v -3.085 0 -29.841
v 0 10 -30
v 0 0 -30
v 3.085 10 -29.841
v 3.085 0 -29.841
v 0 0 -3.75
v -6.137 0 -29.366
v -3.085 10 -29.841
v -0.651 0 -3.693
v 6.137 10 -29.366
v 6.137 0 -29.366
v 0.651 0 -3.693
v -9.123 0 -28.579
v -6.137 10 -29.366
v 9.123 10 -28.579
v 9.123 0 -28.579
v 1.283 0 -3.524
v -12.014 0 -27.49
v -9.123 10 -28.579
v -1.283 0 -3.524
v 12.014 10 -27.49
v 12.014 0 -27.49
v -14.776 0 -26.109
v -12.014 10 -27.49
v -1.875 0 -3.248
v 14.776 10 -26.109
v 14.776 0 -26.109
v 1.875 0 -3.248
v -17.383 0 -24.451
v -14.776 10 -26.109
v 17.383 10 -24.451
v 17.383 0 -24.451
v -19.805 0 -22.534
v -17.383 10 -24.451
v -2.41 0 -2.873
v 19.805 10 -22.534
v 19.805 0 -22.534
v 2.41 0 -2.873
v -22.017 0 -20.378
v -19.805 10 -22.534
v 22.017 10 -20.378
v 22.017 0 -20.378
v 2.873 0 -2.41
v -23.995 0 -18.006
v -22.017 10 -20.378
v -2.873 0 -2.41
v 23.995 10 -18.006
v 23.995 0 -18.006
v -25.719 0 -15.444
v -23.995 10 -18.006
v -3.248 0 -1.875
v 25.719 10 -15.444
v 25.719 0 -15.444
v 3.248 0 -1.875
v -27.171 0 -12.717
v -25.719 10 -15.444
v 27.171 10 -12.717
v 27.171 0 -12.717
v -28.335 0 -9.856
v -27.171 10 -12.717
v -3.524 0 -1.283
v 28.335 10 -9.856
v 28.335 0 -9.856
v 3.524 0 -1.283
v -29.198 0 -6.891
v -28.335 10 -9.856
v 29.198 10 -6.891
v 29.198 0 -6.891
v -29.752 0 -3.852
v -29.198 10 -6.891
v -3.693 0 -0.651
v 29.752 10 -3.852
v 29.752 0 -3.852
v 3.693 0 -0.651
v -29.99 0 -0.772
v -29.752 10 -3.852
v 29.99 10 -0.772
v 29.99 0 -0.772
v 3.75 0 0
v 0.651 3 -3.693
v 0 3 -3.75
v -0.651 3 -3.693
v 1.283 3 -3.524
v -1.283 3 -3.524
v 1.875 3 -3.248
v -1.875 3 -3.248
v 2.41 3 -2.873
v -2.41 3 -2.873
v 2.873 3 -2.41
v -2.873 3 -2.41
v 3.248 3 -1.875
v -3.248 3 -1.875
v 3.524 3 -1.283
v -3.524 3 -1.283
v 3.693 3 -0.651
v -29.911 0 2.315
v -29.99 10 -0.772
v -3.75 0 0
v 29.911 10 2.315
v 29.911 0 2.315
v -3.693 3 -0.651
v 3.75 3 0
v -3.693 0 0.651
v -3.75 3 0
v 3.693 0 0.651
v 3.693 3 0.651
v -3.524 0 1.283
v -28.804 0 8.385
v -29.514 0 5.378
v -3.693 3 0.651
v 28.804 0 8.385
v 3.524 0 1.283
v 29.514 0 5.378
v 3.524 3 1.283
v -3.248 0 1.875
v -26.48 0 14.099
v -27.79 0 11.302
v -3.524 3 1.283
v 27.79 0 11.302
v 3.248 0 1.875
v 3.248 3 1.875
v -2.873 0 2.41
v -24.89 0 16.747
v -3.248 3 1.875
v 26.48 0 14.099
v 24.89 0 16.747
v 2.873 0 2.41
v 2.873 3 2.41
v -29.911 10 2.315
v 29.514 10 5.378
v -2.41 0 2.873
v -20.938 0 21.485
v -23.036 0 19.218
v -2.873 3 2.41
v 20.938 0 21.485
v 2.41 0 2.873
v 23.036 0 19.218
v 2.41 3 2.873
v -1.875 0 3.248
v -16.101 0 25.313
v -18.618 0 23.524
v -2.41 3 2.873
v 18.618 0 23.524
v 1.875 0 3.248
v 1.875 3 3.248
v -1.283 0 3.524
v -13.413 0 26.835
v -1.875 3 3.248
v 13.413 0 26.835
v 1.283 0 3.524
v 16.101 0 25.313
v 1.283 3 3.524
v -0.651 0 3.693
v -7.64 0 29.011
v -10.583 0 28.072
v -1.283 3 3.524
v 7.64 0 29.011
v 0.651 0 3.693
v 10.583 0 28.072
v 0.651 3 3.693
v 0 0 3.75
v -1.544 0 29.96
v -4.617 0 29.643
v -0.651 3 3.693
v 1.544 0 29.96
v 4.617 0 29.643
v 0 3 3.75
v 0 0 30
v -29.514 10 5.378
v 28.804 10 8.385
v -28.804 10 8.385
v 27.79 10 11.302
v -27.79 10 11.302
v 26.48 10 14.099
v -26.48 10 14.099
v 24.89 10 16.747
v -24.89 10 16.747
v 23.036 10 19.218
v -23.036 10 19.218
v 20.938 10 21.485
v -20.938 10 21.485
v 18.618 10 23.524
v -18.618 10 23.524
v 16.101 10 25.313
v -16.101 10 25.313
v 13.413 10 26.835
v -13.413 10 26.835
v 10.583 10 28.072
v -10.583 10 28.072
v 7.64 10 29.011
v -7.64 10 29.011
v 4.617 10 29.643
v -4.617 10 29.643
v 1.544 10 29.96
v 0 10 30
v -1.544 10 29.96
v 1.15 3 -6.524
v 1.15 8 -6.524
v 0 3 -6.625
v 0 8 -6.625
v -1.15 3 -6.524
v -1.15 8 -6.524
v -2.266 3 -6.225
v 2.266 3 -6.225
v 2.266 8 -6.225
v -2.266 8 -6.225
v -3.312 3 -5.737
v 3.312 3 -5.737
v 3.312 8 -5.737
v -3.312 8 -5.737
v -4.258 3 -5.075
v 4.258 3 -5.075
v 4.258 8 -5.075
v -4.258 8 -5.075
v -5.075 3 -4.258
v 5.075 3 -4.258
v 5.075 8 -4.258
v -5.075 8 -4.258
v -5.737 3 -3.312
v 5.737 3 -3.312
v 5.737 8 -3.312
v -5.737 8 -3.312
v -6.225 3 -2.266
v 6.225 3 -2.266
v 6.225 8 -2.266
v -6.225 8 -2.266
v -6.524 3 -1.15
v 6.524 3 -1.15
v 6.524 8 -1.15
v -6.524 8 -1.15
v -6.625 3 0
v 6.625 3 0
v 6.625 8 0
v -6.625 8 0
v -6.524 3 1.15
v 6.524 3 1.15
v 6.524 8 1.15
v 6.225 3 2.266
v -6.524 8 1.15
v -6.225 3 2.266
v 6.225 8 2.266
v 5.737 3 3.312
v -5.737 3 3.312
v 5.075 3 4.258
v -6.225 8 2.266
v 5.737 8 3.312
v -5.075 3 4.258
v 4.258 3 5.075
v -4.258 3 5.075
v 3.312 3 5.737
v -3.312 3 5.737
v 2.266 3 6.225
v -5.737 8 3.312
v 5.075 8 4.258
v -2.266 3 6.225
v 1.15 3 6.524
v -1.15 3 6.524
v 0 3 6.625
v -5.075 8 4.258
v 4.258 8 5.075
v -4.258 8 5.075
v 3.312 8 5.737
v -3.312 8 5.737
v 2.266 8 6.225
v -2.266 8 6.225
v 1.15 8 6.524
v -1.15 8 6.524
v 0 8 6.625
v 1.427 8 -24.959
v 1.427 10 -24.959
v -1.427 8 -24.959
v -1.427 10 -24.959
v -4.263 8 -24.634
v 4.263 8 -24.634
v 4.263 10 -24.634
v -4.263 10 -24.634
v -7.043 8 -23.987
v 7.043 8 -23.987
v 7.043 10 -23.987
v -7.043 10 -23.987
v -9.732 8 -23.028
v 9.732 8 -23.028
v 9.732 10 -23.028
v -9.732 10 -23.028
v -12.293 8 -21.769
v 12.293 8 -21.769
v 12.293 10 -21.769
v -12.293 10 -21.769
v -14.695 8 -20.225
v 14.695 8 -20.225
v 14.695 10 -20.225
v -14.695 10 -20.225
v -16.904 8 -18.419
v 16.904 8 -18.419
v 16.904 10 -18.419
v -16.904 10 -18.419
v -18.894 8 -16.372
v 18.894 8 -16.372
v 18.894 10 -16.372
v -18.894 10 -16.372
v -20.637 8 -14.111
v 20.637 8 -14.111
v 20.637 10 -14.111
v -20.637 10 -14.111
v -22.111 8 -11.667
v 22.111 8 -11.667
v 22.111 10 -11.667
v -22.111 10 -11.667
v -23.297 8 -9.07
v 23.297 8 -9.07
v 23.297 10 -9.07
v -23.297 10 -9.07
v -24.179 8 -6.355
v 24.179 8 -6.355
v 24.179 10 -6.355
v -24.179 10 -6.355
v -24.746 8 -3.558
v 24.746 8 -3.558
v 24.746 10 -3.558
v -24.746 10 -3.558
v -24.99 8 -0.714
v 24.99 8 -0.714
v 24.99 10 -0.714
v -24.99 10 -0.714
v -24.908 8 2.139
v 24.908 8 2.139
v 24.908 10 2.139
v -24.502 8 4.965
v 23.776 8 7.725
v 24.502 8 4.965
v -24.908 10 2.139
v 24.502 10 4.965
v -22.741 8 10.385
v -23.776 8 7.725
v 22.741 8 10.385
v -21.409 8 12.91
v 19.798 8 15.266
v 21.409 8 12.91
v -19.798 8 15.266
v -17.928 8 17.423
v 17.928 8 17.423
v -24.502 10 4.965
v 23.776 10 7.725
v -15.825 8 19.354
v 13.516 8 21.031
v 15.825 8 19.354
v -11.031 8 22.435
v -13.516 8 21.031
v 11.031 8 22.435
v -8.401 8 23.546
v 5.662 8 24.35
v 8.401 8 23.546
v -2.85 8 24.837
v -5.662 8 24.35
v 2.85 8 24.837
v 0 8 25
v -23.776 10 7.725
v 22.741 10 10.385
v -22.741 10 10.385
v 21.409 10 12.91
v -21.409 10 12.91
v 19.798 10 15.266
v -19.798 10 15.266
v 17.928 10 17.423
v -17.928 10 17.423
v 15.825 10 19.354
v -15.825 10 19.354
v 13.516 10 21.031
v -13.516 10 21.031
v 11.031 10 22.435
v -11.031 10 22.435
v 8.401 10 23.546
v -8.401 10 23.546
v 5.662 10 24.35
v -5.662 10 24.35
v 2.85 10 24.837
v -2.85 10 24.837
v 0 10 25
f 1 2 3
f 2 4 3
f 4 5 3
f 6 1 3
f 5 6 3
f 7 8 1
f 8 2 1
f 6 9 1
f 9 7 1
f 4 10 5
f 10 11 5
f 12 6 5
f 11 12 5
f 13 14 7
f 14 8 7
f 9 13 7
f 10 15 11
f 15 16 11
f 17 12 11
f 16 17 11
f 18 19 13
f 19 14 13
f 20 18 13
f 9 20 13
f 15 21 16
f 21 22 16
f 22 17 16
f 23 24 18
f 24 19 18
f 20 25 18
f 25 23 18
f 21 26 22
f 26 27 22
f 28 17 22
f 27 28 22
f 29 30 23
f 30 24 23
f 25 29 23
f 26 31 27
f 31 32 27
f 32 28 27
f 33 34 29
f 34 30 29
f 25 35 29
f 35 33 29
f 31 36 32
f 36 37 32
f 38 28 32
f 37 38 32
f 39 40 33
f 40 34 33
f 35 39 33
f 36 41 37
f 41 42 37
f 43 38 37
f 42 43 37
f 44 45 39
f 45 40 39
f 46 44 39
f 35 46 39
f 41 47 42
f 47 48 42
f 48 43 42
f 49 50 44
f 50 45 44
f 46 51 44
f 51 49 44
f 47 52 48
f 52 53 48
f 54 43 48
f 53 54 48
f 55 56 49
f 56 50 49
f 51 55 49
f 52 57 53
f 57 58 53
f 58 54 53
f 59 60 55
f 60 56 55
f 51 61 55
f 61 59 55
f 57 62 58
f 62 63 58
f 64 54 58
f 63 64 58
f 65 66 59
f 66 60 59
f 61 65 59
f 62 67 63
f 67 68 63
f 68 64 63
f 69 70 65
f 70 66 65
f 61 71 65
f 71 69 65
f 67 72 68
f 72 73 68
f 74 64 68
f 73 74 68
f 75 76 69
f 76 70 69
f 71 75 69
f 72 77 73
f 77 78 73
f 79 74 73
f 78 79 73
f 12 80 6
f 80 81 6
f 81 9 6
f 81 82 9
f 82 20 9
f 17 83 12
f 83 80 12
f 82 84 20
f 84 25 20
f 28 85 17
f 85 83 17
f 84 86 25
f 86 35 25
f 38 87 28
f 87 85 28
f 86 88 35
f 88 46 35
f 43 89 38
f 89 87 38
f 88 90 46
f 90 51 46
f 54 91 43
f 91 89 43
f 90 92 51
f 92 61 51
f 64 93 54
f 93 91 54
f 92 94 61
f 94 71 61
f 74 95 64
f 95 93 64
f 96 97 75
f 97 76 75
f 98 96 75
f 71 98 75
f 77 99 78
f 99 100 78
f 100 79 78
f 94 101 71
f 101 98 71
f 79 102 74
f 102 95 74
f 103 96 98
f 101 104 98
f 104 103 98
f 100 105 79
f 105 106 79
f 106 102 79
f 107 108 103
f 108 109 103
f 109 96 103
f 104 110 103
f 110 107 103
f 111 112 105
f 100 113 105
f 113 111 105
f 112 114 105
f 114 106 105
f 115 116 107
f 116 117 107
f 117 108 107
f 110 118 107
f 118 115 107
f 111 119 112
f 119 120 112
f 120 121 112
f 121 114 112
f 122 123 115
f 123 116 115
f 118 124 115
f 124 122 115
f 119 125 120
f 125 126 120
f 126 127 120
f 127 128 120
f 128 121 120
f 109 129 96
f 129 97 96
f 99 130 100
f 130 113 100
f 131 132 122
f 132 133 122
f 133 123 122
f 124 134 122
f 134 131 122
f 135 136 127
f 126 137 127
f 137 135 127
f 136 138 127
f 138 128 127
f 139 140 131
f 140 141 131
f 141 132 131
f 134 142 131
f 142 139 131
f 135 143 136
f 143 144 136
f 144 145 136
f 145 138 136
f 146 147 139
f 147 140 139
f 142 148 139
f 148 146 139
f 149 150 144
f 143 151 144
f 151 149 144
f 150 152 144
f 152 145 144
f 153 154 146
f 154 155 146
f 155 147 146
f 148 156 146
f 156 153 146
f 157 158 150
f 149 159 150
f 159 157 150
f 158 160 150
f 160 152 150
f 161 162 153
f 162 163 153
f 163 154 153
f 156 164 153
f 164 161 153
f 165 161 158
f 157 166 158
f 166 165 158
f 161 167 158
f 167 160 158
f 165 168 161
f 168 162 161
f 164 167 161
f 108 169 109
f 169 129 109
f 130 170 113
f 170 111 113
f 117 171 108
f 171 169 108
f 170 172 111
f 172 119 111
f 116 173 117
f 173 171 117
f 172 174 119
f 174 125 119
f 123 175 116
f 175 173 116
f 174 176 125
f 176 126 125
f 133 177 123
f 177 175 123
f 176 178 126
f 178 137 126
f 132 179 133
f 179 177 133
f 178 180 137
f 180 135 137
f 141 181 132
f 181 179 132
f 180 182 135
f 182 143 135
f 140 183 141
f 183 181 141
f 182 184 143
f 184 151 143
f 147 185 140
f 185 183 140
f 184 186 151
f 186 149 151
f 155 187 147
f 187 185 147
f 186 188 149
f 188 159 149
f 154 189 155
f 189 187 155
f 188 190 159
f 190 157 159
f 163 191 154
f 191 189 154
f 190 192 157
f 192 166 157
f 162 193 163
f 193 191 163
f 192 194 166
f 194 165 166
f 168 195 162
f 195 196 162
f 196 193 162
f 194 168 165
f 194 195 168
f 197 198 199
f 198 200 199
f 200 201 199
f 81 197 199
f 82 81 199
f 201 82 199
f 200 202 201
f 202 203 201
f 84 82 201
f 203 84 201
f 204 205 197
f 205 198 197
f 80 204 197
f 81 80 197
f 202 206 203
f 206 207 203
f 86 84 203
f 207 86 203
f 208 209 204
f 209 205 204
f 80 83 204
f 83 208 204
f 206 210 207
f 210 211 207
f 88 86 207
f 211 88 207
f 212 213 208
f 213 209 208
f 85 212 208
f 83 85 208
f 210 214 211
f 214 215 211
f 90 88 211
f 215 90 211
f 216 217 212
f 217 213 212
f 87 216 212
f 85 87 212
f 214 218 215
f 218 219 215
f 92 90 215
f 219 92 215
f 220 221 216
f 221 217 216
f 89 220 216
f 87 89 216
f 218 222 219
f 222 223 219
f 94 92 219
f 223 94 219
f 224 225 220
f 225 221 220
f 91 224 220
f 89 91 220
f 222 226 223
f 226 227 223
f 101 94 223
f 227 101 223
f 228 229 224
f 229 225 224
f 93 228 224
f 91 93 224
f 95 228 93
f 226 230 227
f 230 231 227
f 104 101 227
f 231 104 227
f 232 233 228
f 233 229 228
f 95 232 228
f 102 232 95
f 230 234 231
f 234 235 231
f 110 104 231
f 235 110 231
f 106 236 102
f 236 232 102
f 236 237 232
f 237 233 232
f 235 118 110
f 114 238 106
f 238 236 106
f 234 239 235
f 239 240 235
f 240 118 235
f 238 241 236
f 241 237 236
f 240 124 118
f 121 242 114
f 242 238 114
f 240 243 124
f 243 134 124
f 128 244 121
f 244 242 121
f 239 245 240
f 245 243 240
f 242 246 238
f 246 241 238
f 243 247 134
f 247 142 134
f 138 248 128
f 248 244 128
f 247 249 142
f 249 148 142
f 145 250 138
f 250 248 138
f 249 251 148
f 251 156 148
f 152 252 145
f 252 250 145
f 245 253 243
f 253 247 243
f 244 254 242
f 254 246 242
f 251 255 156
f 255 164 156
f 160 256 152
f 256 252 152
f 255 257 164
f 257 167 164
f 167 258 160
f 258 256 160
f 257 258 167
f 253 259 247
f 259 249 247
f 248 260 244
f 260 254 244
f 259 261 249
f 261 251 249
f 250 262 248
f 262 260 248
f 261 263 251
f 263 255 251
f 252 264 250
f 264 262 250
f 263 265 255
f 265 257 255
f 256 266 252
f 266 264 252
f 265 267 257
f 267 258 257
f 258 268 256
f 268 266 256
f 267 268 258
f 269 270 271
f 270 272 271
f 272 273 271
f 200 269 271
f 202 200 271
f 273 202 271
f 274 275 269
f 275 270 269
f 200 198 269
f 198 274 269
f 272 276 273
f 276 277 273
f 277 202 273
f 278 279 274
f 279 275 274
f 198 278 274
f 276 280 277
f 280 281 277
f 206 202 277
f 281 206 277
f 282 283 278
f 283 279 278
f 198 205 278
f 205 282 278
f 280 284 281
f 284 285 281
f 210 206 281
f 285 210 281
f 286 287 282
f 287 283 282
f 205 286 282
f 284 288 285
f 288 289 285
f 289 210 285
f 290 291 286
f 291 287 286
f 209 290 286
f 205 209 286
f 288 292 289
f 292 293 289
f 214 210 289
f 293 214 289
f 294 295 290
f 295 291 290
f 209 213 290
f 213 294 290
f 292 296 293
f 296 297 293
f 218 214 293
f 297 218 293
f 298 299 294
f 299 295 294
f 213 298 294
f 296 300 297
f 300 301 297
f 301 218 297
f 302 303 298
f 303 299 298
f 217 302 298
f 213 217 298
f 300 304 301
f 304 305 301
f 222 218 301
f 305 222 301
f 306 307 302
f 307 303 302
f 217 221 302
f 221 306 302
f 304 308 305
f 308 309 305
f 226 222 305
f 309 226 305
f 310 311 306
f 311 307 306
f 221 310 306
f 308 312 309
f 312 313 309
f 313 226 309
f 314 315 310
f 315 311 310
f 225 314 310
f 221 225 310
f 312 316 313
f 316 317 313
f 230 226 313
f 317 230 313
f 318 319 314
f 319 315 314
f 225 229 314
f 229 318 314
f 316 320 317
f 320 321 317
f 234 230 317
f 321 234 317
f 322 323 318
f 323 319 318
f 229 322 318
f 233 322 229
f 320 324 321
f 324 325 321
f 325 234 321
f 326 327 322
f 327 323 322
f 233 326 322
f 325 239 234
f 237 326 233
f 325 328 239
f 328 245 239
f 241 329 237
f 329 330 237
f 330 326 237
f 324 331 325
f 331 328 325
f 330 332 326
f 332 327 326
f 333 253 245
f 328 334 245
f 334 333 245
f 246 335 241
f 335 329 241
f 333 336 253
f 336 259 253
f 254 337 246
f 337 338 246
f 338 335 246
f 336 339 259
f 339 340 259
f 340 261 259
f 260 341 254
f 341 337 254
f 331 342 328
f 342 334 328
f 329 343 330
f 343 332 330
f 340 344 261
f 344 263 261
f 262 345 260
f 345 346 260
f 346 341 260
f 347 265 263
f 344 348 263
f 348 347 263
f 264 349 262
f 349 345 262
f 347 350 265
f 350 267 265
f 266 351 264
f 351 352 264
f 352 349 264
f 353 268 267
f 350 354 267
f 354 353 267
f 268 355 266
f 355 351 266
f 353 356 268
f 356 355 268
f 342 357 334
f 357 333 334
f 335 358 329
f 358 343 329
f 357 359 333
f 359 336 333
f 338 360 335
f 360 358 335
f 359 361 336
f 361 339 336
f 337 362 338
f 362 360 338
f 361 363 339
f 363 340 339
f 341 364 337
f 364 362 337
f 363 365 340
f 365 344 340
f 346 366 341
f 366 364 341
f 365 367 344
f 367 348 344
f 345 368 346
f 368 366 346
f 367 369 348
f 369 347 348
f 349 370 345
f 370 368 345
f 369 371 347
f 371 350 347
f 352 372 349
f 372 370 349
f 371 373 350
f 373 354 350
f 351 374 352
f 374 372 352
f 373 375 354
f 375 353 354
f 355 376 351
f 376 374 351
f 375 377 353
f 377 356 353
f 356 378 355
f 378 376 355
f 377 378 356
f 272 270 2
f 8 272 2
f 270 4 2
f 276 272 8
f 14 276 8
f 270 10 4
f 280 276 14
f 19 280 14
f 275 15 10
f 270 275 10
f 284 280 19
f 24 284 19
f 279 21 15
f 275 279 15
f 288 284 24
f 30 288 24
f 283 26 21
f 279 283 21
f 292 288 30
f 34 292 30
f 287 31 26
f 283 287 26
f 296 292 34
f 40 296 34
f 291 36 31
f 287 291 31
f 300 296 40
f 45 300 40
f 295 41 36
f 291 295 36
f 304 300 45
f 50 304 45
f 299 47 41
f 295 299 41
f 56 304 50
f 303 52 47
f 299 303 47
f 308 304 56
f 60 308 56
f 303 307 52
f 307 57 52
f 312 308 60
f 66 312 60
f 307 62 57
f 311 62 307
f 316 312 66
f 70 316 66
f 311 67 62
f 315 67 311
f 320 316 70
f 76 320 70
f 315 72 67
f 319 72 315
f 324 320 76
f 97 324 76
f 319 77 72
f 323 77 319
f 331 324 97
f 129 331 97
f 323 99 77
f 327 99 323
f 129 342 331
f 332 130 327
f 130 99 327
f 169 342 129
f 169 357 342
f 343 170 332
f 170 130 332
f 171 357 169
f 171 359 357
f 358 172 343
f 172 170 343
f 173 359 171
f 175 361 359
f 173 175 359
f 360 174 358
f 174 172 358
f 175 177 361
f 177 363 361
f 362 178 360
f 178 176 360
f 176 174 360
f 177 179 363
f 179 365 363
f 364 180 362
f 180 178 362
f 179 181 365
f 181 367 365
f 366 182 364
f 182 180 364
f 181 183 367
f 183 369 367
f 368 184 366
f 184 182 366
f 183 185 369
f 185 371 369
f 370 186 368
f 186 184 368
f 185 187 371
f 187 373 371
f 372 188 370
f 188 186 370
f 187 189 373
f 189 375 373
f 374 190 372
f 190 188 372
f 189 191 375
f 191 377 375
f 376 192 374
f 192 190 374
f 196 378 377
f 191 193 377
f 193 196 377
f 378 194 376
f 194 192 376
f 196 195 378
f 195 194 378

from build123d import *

# Parameters (mm, degrees)
SKETCH1_R               = 30
BOSS_EXTRUDE1_DEPTH     = 10
SKETCH2_R               = 25
CUT_EXTRUDE1_DEPTH      = 2
SKETCH3_R               = 6.625
CUT_EXTRUDE2_DEPTH      = 5
SKETCH4_R               = 3.75
CUT_EXTRUDE4_DEPTH      = 8
CUT_EXTRUDE4_DEPTH_BACK = 4


with BuildPart() as part:
    # Sketch1 → Boss-Extrude1 (new body)
    with BuildSketch(Plane(origin=(0, 0, 0), x_dir=(1, 0, 0), z_dir=(0, 1, 0))):
        Circle(SKETCH1_R)
    extrude(amount=BOSS_EXTRUDE1_DEPTH)

    # Sketch2 → Cut-Extrude1 (cut)
    with BuildSketch(Plane(origin=(0, 10, 0), x_dir=(1, 0, 0), z_dir=(0, 1, 0))):
        Circle(SKETCH2_R)
    extrude(amount=-CUT_EXTRUDE1_DEPTH, mode=Mode.SUBTRACT)

    # Sketch3 → Cut-Extrude2 (cut)
    with BuildSketch(Plane(origin=(0, 8, 0), x_dir=(1, 0, 0), z_dir=(0, 1, 0))):
        Circle(SKETCH3_R)
    extrude(amount=-CUT_EXTRUDE2_DEPTH, mode=Mode.SUBTRACT)

    # Sketch4 → Cut-Extrude4 (cut, two sides)
    with BuildSketch(Plane(origin=(0, 3, 0), x_dir=(1, 0, 0), z_dir=(0, 1, 0))) as cut_extrude4_sk:
        Circle(SKETCH4_R)
    extrude(amount=CUT_EXTRUDE4_DEPTH, mode=Mode.SUBTRACT)
    extrude(cut_extrude4_sk.sketch, amount=-CUT_EXTRUDE4_DEPTH_BACK, mode=Mode.SUBTRACT)


solid = part.part
